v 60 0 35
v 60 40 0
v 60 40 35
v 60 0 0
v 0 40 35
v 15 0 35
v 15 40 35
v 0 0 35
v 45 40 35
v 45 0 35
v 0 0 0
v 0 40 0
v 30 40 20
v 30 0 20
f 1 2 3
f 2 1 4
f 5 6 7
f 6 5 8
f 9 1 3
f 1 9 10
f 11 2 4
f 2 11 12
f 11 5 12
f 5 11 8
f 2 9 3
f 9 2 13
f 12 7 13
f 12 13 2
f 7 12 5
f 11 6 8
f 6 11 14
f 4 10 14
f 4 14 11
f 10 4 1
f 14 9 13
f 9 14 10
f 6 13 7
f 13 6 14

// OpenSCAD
// V 形槽塊（vblock）— 由 ortho_lib_work/objects.py 產生，請改 objects.py 後重建
// 長方塊 60×40×35，頂面中央由前到後有一道 V 形槽：槽口寬 30、槽深 15。
difference() {
  union() {
    translate([0,0,0]) cube([60,40,35]);
  }
  union() {
    multmatrix([[1,0,0,0],[0,0,-1,41],[0,1,0,0],[0,0,0,1]]) linear_extrude(height=42) polygon([[15,35],[30,20],[45,35],[45,36],[15,36]]);
  }
}
